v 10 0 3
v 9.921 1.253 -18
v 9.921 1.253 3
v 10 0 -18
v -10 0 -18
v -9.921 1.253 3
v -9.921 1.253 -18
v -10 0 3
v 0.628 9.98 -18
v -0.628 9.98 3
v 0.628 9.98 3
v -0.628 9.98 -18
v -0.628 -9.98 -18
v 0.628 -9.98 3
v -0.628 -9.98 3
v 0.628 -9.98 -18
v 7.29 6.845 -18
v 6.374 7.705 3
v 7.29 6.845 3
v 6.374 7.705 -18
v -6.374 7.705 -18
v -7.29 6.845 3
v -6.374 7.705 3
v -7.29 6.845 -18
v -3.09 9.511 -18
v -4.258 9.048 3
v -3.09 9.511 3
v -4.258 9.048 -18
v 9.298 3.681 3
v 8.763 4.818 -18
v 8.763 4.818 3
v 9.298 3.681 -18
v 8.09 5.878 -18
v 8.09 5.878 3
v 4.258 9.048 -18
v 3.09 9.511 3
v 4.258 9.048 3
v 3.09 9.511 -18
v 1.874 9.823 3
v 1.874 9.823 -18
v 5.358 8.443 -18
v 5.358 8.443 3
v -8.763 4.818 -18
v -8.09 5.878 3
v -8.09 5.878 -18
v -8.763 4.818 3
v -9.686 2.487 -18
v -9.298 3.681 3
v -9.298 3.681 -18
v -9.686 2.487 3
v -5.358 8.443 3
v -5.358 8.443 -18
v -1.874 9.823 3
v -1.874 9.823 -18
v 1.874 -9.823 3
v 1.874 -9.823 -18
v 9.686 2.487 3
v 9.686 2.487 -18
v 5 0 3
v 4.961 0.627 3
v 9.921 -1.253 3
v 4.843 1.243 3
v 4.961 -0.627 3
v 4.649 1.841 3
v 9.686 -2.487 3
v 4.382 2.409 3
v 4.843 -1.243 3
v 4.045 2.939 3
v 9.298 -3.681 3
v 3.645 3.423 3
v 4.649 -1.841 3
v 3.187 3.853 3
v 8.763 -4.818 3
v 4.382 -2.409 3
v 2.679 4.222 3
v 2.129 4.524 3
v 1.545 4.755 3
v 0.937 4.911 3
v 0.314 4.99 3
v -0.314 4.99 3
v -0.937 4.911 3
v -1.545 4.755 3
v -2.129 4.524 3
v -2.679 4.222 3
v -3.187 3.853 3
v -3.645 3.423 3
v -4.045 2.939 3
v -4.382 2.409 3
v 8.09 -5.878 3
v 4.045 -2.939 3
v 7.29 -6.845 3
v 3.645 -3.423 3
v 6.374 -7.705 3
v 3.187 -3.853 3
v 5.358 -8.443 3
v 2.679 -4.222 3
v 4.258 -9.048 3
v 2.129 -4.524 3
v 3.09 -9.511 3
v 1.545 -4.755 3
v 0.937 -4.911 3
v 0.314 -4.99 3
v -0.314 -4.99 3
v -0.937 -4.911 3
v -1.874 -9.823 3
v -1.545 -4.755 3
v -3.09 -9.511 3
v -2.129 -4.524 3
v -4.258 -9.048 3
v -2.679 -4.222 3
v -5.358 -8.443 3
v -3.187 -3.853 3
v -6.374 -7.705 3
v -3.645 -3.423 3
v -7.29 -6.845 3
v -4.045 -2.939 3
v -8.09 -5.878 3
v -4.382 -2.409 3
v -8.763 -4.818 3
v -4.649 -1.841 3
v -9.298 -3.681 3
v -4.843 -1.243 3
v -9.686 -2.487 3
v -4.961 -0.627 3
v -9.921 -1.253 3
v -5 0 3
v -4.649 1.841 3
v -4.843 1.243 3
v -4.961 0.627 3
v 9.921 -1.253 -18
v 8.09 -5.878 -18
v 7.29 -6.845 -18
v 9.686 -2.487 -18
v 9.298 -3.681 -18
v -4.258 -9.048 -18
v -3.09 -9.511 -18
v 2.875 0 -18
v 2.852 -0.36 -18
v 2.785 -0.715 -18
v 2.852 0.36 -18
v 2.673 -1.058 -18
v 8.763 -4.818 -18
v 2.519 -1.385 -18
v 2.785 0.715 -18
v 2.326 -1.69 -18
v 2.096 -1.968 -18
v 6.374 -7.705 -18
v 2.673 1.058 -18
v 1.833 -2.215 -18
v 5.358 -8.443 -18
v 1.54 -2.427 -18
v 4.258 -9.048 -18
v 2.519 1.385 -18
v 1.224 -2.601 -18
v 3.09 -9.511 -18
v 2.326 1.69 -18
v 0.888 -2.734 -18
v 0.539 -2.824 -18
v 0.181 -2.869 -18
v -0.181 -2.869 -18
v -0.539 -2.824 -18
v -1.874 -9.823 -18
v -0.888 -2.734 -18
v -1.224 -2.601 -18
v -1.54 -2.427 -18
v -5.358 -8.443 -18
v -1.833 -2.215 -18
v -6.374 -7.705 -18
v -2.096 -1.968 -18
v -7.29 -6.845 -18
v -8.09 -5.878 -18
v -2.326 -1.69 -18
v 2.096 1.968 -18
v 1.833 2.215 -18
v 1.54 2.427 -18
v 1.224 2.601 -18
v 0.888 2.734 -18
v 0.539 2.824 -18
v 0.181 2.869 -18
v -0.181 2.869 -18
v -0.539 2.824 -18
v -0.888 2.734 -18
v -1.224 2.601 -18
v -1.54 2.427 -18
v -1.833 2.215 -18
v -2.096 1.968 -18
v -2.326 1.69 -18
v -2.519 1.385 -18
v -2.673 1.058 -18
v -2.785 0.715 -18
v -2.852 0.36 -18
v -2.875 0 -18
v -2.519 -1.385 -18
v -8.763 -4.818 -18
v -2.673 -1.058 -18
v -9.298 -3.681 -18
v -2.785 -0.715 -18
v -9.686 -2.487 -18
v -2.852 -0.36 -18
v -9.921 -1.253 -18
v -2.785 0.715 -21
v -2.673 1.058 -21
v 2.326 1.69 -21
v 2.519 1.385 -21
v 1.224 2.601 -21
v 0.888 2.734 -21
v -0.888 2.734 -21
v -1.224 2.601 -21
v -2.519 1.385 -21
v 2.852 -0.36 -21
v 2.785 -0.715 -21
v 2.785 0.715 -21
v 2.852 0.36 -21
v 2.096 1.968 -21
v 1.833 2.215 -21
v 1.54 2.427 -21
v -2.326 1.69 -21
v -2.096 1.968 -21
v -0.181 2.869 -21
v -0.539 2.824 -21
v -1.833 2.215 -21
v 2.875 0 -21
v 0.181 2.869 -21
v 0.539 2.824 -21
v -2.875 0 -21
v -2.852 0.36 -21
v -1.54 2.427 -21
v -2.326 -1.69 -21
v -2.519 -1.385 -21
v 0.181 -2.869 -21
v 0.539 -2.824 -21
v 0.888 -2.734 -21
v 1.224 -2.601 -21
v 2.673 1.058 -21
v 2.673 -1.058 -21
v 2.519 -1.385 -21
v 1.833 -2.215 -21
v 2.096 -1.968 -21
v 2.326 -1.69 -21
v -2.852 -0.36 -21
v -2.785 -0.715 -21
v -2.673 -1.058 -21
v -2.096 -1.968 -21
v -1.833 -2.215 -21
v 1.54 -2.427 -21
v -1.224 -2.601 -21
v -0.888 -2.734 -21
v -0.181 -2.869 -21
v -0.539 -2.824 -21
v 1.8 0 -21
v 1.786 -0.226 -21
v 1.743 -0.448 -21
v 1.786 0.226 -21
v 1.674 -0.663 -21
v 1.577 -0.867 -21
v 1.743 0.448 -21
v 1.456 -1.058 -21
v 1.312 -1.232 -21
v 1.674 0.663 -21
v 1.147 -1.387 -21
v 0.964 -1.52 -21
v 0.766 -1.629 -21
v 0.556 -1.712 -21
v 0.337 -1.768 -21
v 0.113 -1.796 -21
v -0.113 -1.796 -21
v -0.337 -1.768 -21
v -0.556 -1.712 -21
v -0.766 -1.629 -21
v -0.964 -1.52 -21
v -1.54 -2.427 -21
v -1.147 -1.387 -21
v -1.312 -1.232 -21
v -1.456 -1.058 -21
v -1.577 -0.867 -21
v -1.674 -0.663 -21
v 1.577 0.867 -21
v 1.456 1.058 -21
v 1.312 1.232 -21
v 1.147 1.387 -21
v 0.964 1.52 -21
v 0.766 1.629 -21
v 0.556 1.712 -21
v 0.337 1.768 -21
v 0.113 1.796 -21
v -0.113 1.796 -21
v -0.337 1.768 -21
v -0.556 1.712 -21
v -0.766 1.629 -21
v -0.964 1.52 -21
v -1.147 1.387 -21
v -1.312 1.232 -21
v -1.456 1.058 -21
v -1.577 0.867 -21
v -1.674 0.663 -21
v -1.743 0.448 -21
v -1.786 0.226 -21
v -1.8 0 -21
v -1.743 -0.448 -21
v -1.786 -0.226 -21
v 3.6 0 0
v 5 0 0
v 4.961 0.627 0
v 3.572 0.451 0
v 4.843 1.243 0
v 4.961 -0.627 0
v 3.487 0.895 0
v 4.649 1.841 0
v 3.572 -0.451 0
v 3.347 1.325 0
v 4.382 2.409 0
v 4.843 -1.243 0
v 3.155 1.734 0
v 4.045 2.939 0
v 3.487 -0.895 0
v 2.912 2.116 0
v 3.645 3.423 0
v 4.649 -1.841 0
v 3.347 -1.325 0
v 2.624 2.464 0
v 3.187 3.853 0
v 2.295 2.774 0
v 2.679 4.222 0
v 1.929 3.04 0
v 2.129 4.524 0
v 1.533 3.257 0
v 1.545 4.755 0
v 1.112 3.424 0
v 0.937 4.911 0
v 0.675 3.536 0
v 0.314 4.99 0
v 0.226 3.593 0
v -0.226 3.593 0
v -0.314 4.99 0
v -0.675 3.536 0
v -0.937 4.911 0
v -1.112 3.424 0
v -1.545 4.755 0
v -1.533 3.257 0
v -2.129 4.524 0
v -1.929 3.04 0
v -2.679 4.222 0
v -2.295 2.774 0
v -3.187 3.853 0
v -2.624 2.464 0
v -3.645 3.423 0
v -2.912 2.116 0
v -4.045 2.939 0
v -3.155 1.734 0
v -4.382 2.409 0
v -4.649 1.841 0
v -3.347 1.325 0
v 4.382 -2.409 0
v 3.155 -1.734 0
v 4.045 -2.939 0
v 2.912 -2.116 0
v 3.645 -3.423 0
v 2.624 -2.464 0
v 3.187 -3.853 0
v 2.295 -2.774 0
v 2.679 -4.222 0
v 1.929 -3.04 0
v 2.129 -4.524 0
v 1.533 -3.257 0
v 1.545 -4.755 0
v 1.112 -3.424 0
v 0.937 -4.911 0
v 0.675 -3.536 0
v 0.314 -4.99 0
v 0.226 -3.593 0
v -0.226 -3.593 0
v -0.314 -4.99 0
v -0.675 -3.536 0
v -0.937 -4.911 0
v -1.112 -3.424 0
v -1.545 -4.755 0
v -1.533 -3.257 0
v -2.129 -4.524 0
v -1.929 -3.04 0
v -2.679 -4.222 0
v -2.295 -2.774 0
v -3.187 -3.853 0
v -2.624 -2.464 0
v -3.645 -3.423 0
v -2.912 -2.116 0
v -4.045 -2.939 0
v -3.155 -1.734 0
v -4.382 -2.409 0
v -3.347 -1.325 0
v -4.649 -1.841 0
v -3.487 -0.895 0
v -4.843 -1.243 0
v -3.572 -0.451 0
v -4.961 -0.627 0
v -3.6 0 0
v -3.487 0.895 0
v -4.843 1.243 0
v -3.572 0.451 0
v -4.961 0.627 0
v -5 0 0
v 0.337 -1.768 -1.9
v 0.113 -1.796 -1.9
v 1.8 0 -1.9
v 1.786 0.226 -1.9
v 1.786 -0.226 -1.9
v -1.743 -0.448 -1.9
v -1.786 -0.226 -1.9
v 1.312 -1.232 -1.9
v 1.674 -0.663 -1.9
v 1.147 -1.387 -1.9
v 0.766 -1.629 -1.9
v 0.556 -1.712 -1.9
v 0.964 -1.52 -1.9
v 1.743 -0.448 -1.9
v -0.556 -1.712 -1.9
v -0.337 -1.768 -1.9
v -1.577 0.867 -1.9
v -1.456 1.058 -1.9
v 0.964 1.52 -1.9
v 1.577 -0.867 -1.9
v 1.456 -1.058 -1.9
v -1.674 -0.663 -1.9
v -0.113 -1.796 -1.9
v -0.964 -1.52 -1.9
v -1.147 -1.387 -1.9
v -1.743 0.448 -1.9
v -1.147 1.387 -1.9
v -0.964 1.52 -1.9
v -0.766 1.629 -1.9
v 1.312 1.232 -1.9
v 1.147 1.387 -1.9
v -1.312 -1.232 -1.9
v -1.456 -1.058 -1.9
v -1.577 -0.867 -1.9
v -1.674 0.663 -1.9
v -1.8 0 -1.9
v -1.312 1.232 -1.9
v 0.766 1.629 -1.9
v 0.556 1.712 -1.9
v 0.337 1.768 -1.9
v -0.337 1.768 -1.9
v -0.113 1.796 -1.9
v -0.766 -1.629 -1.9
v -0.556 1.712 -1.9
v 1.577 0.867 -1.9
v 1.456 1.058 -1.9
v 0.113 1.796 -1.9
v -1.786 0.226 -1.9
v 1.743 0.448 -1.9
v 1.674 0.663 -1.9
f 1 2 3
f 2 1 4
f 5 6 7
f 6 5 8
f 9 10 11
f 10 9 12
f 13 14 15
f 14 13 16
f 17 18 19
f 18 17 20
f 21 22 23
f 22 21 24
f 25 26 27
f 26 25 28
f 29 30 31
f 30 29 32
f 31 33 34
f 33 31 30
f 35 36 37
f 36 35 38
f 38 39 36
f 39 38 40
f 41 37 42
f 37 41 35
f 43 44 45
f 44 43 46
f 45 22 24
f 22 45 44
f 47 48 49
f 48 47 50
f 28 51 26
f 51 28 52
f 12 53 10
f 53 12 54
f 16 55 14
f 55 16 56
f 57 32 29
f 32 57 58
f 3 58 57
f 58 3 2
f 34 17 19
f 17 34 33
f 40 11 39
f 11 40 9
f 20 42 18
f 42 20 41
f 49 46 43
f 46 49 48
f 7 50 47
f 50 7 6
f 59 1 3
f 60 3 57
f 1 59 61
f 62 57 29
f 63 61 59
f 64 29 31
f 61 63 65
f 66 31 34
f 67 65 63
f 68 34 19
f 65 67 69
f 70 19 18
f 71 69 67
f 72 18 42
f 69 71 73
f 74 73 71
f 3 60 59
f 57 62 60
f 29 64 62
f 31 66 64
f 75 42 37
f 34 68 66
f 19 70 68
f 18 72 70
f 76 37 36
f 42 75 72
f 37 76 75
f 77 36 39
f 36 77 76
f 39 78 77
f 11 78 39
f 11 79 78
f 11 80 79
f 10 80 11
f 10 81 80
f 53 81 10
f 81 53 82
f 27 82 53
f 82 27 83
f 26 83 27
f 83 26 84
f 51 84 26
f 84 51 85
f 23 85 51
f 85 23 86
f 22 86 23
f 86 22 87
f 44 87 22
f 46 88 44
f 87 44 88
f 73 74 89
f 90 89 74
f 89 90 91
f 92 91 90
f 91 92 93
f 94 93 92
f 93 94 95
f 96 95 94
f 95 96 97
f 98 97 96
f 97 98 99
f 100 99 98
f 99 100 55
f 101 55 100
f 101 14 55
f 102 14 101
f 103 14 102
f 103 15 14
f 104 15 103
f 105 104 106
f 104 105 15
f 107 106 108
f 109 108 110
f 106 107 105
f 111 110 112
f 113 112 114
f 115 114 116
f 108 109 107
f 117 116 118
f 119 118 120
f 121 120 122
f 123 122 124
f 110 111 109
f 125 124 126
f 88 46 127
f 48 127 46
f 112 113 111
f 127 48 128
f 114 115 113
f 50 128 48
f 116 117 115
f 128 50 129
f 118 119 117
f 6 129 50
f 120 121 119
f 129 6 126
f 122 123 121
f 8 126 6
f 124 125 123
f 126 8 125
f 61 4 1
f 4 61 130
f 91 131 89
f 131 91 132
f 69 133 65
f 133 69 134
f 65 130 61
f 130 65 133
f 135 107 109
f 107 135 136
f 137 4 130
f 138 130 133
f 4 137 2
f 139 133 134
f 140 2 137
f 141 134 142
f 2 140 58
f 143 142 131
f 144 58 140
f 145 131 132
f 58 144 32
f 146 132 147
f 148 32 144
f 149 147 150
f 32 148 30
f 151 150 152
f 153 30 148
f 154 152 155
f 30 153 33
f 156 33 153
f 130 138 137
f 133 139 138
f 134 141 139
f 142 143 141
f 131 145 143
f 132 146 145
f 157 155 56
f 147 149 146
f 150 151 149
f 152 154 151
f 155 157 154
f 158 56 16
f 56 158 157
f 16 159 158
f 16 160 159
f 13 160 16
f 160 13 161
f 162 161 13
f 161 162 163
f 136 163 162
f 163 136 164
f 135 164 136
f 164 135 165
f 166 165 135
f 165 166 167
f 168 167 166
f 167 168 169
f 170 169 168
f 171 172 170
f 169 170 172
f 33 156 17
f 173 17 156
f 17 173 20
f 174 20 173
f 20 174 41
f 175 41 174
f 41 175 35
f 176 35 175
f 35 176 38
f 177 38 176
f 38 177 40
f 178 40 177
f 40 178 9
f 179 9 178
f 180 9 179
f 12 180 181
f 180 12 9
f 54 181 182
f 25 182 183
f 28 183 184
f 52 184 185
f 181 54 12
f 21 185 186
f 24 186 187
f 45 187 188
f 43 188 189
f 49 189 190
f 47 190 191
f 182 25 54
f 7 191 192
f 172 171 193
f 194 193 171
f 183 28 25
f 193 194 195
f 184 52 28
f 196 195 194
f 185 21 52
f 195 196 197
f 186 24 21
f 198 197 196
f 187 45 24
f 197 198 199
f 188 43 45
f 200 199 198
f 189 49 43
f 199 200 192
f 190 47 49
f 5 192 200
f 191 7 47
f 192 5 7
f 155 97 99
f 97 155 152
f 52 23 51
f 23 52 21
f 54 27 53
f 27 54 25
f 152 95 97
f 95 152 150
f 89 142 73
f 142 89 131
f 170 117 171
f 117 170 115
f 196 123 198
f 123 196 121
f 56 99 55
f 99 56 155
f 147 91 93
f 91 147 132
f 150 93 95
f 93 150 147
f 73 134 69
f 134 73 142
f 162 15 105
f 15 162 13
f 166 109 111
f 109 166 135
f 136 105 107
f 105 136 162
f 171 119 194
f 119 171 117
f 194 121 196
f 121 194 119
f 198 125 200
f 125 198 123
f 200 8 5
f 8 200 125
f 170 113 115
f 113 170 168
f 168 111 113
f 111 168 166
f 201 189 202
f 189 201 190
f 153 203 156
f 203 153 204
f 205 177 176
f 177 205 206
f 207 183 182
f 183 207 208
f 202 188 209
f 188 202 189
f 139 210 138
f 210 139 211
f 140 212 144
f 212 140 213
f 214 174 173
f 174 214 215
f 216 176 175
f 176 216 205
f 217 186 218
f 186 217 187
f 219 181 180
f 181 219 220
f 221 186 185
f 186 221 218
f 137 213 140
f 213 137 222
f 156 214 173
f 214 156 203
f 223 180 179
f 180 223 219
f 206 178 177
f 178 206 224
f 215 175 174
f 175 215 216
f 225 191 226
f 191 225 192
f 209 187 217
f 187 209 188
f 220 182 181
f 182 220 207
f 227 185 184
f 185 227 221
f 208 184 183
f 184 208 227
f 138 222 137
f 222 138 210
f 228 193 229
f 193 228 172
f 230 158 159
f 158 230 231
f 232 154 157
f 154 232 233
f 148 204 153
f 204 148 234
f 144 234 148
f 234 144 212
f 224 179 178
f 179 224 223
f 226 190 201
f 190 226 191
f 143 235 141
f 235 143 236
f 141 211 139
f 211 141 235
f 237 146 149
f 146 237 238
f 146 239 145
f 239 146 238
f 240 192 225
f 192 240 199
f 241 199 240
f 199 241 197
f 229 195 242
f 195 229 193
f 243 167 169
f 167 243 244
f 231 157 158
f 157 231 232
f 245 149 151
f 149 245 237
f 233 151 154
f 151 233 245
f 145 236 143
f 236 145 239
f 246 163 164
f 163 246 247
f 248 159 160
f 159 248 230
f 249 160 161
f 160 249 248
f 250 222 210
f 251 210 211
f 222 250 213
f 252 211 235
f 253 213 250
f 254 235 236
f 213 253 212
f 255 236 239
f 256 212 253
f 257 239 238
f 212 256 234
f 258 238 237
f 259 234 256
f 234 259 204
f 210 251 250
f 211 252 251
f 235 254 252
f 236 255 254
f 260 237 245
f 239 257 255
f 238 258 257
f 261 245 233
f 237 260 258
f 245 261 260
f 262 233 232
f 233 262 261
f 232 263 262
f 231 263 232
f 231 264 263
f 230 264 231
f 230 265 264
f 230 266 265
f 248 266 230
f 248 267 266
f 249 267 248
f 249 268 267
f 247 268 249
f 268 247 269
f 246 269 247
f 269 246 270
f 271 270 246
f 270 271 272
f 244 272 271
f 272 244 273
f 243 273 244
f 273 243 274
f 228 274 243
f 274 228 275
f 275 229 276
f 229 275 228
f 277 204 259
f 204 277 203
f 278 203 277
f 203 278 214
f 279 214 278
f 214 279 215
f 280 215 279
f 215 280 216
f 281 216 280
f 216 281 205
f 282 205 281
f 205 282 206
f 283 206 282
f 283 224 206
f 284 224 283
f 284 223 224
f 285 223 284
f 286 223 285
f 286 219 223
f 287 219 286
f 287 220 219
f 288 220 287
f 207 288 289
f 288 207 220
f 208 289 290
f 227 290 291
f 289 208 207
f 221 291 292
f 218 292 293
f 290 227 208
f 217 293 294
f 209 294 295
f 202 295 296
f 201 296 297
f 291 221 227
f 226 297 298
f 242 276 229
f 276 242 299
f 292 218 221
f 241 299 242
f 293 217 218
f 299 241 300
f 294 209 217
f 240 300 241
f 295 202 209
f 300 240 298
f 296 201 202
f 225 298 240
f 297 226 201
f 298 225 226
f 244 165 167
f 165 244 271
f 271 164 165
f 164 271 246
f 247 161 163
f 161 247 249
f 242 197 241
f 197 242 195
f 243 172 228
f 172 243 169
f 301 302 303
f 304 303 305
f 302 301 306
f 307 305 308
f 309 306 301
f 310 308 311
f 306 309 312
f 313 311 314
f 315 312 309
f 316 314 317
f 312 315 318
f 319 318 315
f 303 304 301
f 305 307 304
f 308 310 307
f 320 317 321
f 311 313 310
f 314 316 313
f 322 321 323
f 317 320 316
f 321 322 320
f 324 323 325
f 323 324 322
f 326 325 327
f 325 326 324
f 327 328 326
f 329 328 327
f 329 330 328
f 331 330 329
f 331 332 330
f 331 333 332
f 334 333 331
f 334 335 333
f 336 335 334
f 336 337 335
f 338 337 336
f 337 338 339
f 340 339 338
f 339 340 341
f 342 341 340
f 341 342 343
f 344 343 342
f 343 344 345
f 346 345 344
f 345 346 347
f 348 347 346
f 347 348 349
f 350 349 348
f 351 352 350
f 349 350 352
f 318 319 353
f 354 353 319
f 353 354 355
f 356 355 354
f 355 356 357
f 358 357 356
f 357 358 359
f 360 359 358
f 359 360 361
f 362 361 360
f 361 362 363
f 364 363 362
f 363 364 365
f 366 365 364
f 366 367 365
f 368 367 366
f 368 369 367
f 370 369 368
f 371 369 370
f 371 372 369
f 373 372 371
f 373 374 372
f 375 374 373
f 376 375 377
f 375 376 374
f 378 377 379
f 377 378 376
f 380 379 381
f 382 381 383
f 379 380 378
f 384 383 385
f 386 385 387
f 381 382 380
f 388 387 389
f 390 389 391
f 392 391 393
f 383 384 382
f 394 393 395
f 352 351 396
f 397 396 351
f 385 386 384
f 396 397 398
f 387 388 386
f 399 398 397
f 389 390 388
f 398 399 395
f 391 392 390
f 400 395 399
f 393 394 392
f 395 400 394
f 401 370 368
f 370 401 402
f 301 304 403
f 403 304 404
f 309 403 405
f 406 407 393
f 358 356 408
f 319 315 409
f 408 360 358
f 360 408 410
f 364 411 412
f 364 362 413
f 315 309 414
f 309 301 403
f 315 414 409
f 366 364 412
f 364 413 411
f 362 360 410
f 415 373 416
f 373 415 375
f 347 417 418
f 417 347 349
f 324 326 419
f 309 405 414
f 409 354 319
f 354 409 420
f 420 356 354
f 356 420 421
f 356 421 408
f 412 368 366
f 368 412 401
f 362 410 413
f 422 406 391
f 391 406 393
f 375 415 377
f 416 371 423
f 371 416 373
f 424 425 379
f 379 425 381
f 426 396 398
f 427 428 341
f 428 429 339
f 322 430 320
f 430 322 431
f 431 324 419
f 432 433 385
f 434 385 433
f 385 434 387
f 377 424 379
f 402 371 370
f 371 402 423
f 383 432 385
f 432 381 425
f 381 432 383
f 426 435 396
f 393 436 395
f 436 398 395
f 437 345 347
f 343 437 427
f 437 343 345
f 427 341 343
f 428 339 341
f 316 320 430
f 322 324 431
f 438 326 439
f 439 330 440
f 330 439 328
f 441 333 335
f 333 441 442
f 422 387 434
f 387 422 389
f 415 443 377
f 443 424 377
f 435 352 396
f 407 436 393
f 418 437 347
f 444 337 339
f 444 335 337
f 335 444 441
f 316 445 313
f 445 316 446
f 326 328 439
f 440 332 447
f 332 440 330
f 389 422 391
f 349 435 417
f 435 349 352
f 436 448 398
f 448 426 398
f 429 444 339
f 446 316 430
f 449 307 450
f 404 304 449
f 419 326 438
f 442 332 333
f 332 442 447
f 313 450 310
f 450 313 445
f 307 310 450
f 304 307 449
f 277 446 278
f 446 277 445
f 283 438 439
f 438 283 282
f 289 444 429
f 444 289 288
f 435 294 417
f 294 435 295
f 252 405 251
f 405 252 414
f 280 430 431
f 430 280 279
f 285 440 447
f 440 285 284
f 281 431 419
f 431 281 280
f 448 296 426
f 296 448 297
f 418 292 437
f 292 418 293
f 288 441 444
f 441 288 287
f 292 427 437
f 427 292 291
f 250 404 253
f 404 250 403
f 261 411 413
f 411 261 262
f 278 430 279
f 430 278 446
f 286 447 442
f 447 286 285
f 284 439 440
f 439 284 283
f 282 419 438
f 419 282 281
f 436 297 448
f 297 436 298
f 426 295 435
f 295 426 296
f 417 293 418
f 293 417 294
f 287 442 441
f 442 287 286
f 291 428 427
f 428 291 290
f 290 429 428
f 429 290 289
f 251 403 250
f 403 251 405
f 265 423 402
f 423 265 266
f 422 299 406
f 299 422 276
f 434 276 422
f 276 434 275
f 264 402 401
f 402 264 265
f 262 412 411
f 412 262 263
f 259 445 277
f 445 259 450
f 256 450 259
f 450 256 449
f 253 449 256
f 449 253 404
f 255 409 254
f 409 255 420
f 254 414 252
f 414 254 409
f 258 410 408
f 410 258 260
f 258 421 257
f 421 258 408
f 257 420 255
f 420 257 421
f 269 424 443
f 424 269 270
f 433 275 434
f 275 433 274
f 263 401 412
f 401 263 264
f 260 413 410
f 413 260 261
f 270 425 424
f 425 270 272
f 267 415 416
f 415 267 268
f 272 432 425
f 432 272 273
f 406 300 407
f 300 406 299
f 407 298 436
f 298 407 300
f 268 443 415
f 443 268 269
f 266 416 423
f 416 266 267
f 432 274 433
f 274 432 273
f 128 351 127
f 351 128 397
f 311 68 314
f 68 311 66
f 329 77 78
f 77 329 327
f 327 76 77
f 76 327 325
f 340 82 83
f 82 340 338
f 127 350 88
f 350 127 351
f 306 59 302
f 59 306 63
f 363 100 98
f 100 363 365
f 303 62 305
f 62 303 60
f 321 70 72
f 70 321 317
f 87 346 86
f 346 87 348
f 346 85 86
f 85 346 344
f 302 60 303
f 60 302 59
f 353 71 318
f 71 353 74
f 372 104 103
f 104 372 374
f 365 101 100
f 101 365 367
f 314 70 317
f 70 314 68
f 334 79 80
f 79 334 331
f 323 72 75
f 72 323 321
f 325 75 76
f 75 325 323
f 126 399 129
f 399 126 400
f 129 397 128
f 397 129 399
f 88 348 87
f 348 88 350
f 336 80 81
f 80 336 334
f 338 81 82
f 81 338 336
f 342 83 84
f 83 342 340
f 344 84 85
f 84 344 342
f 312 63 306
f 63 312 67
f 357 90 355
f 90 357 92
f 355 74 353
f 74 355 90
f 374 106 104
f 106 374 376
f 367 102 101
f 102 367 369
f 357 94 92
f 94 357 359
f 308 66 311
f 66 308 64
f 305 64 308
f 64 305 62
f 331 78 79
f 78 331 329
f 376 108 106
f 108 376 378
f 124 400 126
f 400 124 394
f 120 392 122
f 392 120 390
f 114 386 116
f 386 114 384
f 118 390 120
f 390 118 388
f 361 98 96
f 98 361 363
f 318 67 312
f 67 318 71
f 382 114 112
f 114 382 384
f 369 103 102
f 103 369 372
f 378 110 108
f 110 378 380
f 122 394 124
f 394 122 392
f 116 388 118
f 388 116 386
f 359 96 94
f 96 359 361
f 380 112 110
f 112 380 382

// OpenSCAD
$fn = 50;

difference() {
	union() {
		translate(v = [0, 0, -18.0]) {
			cylinder(h = 21, r = 10.0);
		}
		#translate(v = [0, 0, -21.0]) {
			cylinder(h = 21, r = 2.875);
		}
	}
	union() {
		translate(v = [0, 0, 0]) {
			rotate(a = [0, 0, 0]) {
				difference() {
					union() {
						translate(v = [0, 0, -21.0]) {
							cylinder(h = 21, r = 1.5);
						}
						translate(v = [0, 0, -1.9]) {
							cylinder(h = 1.9, r1 = 1.8, r2 = 3.6);
						}
						translate(v = [0, 0, -21.0]) {
							cylinder(h = 21, r = 1.8);
						}
						translate(v = [0, 0, -21.0]) {
							cylinder(h = 21, r = 1.5);
						}
					}
					union();
				}
			}
		}
		#cylinder(h = 3, r = 5.0);
	}
}
